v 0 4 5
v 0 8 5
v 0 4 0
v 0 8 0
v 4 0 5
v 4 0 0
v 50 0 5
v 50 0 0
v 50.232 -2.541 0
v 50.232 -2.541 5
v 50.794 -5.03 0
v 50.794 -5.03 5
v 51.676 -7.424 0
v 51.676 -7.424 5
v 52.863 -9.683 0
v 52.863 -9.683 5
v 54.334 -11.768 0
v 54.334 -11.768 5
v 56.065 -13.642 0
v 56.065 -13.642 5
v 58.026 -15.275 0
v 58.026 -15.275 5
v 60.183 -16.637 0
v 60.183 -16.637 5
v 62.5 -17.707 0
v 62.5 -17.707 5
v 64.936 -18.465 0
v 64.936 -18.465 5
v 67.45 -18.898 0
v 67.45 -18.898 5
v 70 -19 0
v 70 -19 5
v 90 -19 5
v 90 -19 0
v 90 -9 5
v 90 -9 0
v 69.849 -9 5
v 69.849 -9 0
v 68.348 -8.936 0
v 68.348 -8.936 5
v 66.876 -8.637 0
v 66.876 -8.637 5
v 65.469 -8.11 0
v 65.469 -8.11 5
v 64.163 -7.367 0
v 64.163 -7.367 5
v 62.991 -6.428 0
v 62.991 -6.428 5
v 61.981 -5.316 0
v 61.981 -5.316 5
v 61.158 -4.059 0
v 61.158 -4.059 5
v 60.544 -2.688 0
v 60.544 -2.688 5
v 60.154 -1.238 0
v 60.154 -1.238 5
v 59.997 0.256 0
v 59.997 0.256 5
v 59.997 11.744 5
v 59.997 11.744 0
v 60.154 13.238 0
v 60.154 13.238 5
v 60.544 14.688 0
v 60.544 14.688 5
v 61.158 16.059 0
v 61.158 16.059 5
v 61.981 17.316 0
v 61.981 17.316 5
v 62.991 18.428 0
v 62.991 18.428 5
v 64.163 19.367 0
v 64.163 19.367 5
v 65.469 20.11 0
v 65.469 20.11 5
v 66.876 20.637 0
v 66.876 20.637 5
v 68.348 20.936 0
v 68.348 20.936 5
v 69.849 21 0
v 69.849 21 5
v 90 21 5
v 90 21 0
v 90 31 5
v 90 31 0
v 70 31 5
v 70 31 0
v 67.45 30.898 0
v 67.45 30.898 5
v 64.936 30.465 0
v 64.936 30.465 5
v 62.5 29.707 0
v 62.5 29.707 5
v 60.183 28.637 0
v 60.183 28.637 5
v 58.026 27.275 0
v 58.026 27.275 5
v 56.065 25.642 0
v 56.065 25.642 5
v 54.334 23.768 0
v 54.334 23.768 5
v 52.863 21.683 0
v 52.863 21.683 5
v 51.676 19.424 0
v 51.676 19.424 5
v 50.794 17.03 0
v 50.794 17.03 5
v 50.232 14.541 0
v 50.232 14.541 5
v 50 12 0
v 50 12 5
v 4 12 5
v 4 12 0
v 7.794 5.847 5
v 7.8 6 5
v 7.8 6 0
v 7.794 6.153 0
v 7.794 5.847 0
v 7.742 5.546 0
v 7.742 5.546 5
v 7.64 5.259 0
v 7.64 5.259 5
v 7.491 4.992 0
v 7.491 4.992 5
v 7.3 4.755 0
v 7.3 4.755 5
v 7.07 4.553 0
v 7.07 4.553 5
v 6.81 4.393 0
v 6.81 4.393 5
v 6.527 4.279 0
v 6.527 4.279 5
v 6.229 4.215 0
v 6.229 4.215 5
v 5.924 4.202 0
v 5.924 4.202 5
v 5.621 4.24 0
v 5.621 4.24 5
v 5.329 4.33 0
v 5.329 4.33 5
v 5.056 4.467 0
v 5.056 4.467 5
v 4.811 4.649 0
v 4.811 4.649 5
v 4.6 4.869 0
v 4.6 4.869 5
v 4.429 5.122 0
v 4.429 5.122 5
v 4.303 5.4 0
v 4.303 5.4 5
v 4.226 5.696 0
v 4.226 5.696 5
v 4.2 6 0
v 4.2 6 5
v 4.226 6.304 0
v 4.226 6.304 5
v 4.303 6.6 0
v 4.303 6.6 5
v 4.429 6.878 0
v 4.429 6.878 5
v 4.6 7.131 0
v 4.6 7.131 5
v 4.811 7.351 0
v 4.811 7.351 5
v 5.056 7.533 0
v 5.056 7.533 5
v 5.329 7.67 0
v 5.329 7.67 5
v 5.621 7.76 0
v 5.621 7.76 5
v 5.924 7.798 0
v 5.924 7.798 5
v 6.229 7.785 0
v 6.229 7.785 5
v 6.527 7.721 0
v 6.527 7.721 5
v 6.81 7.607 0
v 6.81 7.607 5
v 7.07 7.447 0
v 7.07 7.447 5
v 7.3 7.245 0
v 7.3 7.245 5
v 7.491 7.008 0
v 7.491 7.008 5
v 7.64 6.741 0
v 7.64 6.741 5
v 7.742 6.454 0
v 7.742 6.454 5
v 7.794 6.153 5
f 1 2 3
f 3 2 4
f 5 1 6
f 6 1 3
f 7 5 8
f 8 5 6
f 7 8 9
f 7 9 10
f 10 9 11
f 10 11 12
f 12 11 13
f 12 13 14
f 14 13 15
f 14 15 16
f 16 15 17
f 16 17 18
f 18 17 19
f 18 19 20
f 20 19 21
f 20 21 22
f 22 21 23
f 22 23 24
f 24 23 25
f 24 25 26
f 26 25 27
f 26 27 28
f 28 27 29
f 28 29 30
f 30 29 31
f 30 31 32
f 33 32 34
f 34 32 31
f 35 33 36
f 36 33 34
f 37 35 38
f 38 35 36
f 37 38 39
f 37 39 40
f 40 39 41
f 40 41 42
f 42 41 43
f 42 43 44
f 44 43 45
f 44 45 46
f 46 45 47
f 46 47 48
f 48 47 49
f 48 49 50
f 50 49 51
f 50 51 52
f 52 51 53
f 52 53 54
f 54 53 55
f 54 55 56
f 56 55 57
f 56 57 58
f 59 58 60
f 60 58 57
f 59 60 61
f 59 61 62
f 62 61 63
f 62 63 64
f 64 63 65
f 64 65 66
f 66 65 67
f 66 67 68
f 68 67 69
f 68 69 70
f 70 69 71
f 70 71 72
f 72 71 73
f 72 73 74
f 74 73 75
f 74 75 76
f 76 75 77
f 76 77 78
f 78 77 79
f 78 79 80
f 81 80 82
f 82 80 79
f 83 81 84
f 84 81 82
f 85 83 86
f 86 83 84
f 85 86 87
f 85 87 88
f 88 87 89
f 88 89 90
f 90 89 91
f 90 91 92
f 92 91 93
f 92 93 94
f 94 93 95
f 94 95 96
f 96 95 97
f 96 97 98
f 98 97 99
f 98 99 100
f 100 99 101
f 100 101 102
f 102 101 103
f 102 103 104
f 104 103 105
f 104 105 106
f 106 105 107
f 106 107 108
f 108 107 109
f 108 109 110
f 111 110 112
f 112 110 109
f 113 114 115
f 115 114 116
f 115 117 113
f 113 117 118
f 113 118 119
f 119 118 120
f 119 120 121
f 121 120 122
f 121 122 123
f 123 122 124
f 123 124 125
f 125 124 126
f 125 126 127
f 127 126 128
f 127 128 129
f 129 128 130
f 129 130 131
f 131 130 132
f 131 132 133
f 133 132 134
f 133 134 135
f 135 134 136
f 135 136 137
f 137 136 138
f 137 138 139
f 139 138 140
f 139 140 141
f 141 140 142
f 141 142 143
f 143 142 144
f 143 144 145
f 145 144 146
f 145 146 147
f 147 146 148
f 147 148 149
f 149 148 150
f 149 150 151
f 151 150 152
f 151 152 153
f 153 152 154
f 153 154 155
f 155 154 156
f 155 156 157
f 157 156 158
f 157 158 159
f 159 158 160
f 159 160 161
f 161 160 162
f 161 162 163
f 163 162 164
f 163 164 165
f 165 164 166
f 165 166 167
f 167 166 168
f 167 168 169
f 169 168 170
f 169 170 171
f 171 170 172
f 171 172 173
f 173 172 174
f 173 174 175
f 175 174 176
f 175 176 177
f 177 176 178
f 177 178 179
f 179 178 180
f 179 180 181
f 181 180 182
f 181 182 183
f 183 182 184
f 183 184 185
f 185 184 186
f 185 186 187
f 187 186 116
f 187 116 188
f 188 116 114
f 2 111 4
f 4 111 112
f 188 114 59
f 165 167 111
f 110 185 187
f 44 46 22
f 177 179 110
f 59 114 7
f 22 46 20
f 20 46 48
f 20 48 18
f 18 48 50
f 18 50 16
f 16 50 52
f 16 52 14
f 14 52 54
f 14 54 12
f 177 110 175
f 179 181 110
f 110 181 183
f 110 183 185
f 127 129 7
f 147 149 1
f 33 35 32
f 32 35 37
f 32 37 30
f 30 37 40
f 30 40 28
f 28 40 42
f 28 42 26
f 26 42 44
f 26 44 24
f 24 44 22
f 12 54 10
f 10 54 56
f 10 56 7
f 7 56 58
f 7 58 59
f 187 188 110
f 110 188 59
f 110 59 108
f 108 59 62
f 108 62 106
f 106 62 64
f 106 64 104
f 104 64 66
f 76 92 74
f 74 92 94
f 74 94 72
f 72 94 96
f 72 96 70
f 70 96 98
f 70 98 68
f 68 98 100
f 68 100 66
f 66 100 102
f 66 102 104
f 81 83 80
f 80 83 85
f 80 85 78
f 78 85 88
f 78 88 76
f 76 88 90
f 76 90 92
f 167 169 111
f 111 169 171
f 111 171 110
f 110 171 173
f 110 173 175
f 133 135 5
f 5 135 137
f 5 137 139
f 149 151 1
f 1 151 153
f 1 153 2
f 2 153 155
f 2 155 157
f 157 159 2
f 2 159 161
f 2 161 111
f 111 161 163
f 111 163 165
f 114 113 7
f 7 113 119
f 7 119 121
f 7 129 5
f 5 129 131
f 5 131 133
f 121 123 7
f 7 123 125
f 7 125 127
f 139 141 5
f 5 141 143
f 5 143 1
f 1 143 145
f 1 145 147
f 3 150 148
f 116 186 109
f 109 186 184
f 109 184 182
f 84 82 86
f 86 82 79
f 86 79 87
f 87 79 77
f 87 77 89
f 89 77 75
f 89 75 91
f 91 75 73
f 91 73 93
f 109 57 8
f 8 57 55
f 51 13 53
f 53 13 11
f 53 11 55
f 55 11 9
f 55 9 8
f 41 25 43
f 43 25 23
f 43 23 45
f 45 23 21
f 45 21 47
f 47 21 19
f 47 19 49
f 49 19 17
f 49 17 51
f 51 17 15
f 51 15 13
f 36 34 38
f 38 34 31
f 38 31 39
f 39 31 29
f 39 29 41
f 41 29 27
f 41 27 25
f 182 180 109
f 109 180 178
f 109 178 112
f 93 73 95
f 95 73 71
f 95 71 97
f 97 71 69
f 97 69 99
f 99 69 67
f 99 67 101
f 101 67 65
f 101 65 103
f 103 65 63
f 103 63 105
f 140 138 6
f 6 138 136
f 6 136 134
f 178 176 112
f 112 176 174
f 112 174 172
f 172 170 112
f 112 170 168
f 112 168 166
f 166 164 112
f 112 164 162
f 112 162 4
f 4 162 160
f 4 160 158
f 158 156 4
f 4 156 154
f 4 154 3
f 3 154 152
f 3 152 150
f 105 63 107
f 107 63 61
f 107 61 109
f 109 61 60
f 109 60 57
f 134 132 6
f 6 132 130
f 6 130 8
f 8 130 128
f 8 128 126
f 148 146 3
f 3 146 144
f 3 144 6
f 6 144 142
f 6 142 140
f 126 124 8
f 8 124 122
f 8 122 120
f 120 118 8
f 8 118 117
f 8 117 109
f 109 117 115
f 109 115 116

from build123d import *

# Parameters (mm, degrees)
SKETCH1_R           = 1.8
BOSS_EXTRUDE2_DEPTH = 5


with BuildPart() as part:
    # Sketch1 → Boss-Extrude2 (new body)
    with BuildSketch(Plane.XY):
        with BuildLine():
            Line((4, 0), (50, 0))
            ThreePointArc((50, 0), (56.064971157, -13.642135624), (70, -19))
            Line((70, -19), (90, -19))
            Line((90, -19), (90, -9))
            Line((90, -9), (69.8490214, -9))
            ThreePointArc((69.8490214, -9), (62.990773359, -6.428332012), (59.996714309, 0.256326008))
            Line((59.996714309, 0.256326008), (59.996714309, 11.743673992))
            ThreePointArc((59.996714309, 11.743673992), (62.990773359, 18.428332012), (69.8490214, 21))
            Line((69.8490214, 21), (90, 21))
            Line((90, 21), (90, 31))
            Line((90, 31), (70, 31))
            ThreePointArc((70, 31), (56.064971157, 25.642135624), (50, 12))
            Line((50, 12), (4, 12))
            Line((4, 12), (0, 8))
            Line((0, 8), (0, 4))
            Line((0, 4), (4, 0))
        make_face()
        with Locations((6, 6)):
            Circle(SKETCH1_R, mode=Mode.SUBTRACT)
    extrude(amount=BOSS_EXTRUDE2_DEPTH)


solid = part.part
